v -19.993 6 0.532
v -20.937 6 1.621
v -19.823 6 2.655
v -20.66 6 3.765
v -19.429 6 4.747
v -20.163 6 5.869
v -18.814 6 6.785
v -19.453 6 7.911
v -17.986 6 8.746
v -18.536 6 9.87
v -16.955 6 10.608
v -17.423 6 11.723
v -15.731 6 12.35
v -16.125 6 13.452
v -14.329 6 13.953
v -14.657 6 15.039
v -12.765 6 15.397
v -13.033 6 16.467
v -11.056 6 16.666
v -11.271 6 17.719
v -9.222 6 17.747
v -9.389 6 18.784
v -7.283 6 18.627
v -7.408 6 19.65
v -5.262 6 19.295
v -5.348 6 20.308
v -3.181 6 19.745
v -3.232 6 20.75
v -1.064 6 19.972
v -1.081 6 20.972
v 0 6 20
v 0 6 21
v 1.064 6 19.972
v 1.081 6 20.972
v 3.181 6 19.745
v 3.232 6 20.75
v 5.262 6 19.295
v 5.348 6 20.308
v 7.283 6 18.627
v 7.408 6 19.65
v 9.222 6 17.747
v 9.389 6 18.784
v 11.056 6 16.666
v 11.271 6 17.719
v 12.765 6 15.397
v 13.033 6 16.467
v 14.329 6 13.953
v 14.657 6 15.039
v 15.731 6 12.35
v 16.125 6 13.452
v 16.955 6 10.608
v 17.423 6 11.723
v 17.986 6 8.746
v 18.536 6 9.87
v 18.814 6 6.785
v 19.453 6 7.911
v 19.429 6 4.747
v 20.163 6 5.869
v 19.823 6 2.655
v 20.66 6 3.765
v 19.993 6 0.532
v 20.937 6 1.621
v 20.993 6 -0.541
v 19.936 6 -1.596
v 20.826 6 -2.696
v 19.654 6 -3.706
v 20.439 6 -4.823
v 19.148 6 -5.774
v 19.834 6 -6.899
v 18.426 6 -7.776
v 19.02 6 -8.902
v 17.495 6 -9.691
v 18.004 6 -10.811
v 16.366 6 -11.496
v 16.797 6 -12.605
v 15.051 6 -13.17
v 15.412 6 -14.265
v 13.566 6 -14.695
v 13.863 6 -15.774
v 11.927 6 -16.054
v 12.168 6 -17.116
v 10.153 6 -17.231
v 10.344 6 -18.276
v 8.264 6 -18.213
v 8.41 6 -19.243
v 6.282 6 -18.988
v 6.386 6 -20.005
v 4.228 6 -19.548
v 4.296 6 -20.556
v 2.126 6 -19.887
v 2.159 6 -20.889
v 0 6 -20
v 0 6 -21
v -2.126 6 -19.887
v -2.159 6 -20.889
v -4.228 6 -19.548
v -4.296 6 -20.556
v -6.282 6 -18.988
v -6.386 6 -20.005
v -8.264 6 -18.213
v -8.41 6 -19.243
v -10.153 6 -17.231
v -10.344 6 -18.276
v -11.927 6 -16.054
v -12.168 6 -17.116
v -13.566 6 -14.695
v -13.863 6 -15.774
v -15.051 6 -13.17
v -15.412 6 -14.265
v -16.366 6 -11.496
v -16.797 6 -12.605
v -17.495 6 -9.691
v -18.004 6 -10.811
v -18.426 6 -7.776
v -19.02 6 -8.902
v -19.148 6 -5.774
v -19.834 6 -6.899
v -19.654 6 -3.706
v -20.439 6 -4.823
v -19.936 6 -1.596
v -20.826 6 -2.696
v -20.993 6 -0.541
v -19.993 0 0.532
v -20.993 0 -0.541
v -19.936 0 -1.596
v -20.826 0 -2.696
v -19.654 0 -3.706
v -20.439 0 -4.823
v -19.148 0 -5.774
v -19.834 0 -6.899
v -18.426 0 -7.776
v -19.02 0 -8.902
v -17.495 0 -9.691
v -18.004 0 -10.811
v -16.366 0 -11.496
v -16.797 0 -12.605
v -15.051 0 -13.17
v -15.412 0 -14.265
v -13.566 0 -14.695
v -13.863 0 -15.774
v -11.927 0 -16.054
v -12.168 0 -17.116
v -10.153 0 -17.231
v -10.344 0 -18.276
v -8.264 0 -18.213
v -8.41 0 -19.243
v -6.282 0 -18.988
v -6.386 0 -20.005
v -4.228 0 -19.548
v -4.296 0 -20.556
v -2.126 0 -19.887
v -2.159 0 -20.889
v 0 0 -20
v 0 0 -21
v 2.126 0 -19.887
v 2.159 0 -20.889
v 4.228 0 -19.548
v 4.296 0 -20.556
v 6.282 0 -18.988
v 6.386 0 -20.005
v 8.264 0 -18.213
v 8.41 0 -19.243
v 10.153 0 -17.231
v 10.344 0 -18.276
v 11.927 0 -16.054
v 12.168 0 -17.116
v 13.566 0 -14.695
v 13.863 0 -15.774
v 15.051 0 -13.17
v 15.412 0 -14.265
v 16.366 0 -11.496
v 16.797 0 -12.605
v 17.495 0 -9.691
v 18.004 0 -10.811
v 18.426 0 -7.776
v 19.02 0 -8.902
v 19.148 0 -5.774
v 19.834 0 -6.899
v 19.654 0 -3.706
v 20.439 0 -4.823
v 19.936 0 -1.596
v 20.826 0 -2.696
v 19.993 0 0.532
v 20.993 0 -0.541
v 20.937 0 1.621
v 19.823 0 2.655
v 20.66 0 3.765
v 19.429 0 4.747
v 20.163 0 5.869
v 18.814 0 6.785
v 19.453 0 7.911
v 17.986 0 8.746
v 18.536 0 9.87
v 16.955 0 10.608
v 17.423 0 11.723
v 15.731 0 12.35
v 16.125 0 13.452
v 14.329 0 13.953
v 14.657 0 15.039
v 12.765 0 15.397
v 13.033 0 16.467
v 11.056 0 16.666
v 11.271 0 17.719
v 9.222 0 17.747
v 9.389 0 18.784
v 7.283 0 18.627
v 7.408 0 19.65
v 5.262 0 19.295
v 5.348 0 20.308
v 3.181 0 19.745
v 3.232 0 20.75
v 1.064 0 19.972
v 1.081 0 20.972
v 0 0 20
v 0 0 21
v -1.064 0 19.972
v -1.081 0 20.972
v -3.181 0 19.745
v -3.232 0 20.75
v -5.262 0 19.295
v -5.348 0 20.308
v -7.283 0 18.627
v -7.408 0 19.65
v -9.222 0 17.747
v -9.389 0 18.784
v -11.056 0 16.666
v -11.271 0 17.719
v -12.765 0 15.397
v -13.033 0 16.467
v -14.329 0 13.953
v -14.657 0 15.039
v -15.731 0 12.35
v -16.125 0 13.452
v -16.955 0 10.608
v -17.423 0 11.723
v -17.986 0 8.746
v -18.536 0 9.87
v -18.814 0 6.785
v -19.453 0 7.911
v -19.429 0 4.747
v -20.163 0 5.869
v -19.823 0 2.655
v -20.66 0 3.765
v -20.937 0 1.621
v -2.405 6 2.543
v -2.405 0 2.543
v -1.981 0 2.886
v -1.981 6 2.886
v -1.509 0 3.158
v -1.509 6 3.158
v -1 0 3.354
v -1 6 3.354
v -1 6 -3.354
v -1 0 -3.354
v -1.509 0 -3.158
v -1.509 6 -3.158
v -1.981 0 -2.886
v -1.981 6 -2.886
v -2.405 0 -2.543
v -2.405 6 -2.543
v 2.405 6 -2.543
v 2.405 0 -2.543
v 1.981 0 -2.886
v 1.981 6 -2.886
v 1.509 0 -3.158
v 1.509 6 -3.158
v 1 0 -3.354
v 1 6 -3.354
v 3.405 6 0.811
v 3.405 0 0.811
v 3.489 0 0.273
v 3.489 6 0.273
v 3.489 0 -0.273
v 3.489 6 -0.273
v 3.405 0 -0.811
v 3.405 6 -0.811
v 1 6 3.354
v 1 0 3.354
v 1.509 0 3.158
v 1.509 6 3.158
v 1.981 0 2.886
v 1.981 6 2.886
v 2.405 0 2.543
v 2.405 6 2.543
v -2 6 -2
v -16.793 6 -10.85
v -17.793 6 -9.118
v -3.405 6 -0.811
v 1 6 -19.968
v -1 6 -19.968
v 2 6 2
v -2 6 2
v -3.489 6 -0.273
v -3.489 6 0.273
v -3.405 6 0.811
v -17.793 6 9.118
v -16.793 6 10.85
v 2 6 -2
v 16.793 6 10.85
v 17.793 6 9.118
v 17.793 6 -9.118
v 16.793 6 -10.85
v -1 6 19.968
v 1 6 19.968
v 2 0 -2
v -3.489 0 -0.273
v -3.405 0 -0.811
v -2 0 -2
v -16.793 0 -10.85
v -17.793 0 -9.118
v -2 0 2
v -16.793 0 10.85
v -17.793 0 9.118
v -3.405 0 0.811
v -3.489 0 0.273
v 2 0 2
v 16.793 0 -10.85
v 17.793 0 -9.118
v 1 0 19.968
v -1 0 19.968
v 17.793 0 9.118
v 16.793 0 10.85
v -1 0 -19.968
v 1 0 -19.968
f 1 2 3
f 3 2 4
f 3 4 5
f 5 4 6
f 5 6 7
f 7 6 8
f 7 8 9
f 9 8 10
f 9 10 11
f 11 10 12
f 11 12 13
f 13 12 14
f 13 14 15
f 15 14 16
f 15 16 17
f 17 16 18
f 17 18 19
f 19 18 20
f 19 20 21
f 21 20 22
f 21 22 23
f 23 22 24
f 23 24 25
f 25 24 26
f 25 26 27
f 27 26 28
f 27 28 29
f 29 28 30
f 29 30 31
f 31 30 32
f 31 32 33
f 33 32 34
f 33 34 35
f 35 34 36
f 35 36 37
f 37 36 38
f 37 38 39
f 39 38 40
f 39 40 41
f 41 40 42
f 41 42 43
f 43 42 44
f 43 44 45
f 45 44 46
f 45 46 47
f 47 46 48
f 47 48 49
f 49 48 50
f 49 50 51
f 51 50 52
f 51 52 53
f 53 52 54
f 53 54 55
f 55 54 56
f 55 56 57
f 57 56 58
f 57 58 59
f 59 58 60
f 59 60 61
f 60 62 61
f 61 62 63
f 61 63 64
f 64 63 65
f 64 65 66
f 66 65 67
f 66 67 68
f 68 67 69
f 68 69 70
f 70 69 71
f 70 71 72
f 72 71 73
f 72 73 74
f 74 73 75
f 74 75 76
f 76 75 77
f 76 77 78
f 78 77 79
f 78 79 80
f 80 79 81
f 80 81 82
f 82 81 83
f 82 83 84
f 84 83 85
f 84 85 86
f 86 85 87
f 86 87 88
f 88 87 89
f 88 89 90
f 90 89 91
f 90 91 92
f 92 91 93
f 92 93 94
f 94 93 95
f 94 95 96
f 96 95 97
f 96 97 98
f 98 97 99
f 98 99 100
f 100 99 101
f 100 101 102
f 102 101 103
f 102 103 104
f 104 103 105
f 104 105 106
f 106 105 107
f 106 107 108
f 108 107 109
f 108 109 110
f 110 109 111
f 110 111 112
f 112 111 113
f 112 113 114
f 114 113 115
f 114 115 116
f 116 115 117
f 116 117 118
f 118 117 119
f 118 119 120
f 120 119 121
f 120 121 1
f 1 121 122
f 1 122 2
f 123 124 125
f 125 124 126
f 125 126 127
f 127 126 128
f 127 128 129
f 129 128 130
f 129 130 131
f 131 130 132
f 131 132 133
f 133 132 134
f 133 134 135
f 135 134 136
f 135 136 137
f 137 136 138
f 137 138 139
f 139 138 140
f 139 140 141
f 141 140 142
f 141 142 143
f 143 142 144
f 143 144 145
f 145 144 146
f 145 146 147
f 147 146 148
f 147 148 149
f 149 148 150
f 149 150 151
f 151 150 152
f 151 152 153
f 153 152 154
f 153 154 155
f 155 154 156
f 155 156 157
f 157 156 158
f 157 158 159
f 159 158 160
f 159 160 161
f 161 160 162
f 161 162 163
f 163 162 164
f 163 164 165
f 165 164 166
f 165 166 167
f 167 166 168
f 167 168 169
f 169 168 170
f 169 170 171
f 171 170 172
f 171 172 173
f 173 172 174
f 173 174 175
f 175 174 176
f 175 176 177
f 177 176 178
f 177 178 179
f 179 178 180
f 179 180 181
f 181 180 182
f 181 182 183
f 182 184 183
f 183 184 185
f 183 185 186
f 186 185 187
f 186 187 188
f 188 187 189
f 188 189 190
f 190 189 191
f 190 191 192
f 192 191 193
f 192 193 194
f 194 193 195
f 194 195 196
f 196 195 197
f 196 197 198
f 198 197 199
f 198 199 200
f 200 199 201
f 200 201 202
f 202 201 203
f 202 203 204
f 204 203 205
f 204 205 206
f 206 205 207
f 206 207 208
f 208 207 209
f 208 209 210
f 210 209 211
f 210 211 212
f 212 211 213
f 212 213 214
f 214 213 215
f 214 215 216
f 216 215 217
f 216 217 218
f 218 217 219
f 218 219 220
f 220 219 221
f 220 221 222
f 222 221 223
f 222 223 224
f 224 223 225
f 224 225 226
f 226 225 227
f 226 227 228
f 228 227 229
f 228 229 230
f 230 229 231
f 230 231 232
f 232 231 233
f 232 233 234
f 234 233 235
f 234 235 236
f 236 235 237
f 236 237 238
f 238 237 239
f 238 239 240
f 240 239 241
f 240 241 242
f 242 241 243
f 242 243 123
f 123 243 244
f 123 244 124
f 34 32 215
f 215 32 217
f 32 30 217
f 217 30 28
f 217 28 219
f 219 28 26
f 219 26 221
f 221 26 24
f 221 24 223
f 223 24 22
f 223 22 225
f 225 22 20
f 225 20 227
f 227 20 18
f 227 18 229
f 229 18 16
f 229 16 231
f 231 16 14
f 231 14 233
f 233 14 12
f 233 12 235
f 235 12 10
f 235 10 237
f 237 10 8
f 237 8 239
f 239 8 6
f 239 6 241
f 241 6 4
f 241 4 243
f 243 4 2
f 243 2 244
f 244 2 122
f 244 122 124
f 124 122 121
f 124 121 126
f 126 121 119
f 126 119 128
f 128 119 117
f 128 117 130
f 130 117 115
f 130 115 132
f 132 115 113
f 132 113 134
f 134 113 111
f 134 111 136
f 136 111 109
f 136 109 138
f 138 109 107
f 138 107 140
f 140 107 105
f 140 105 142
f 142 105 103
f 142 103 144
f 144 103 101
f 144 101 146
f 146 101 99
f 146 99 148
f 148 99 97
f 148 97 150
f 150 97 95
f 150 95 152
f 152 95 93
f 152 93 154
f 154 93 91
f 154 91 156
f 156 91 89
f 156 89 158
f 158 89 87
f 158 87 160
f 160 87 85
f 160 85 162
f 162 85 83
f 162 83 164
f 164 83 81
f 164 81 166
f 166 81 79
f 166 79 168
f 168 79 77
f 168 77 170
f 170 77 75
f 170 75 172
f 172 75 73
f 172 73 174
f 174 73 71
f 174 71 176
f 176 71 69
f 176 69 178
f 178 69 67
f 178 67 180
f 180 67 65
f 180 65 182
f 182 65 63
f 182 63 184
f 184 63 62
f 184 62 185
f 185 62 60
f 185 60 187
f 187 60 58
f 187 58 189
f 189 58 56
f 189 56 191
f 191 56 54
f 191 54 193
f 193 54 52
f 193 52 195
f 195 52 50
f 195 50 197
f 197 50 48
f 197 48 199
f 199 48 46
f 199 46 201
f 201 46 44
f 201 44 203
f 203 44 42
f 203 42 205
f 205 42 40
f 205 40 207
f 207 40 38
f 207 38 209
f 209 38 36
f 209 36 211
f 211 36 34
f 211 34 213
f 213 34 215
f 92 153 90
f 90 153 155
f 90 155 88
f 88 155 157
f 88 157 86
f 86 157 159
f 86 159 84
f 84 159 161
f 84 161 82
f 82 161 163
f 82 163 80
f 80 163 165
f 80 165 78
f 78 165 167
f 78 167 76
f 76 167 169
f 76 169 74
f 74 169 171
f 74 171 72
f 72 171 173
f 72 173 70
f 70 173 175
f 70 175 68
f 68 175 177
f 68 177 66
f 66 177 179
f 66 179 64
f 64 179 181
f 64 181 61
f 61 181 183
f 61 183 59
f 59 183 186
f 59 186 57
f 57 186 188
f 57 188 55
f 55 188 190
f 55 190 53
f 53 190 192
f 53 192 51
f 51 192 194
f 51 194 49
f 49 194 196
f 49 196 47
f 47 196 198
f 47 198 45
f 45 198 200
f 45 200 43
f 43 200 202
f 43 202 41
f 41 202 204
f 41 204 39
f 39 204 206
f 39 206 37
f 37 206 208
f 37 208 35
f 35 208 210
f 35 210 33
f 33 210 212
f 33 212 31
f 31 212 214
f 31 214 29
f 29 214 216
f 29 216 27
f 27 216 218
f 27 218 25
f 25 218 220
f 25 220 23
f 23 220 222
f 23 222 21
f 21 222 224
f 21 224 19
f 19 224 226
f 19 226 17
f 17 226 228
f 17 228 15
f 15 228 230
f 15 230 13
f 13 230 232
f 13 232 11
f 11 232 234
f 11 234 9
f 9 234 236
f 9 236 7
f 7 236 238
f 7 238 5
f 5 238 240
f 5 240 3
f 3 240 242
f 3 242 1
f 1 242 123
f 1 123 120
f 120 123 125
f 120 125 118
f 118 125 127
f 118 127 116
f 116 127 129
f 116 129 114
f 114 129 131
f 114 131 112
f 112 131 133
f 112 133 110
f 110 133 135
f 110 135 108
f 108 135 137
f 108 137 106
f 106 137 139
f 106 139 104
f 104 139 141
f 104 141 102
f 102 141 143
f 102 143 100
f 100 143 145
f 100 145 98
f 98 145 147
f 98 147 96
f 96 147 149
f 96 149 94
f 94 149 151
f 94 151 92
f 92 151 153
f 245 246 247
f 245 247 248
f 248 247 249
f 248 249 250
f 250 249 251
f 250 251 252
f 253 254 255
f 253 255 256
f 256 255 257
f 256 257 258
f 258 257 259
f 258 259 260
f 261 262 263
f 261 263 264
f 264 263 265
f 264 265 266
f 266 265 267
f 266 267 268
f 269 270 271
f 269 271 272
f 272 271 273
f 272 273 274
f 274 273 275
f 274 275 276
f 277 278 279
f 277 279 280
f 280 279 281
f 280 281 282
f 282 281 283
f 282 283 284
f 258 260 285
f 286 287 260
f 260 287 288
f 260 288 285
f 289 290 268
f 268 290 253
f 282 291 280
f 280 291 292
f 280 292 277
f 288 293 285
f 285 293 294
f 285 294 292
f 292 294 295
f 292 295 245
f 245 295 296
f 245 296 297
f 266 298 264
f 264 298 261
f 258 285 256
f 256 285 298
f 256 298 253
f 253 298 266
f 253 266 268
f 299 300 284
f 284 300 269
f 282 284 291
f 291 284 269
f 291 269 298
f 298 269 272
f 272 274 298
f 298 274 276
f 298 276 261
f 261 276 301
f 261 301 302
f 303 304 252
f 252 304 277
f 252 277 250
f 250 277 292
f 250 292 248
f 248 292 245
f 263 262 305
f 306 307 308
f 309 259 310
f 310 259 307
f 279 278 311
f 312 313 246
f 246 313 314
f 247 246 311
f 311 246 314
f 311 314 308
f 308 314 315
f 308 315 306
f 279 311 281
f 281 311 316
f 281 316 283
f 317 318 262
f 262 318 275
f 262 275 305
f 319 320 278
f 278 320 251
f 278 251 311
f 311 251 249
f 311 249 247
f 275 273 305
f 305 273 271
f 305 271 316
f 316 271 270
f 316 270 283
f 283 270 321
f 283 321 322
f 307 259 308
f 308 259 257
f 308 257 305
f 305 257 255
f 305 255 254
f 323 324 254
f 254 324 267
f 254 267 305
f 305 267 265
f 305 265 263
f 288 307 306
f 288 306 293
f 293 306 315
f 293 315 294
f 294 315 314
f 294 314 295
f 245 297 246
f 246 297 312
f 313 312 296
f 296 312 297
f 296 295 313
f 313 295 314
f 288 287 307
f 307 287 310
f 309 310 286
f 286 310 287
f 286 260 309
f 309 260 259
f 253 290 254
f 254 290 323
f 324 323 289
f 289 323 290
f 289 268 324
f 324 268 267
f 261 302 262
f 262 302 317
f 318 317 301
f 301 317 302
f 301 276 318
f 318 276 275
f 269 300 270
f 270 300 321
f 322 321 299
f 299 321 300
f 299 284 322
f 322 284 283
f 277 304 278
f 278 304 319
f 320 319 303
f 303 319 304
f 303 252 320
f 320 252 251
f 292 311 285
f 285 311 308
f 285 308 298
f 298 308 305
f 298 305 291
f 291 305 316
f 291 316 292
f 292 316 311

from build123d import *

# Parameters (mm, degrees)
SKETCH1_R           = 21
SKETCH1_R_2         = 20
BOSS_EXTRUDE4_DEPTH = 6
BOSS_EXTRUDE5_DEPTH = 6
SKETCH5_W           = 4
SKETCH5_H           = 4
CUT_EXTRUDE1_DEPTH  = 15


with BuildPart() as part:
    # Sketch1 → Boss-Extrude4 (new body)
    with BuildSketch(Plane(origin=(0, 0, 0), x_dir=(1, 0, 0), z_dir=(0, 1, 0))):
        Circle(SKETCH1_R)
        Circle(SKETCH1_R_2, mode=Mode.SUBTRACT)
    extrude(amount=BOSS_EXTRUDE4_DEPTH)


with BuildPart() as body_2:
    # Sketch4 → Boss-Extrude5 (new body)
    with BuildSketch(Plane(origin=(0, 0, 0), x_dir=(1, 0, 0), z_dir=(0, 1, 0))):
        with BuildLine():
            ThreePointArc((1, -3.354101966), (1.75, -3.031088913), (2.40473751, -2.543076387))
            Line((2.40473751, -2.543076387), (16.793084245, -10.850192248))
            ThreePointArc((16.793084245, -10.850192248), (17.314755635, -9.996678827), (17.793084245, -9.11814144))
            Line((17.793084245, -9.11814144), (3.40473751, -0.811025579))
            ThreePointArc((3.40473751, -0.811025579), (3.5, 0), (3.40473751, 0.811025579))
            Line((3.40473751, 0.811025579), (17.793084245, 9.11814144))
            ThreePointArc((17.793084245, 9.11814144), (17.314755635, 9.996678827), (16.793084245, 10.850192248))
            Line((16.793084245, 10.850192248), (2.40473751, 2.543076387))
            ThreePointArc((2.40473751, 2.543076387), (1.75, 3.031088913), (1, 3.354101966))
            Line((1, 3.354101966), (1, 19.968333688))
            ThreePointArc((1, 19.968333688), (0, 19.993357654), (-1, 19.968333688))
            Line((-1, 19.968333688), (-1, 3.354101966))
            ThreePointArc((-1, 3.354101966), (-1.75, 3.031088913), (-2.40473751, 2.543076387))
            Line((-2.40473751, 2.543076387), (-16.793084245, 10.850192248))
            ThreePointArc((-16.793084245, 10.850192248), (-17.314755635, 9.996678827), (-17.793084245, 9.11814144))
            Line((-17.793084245, 9.11814144), (-3.40473751, 0.811025579))
            ThreePointArc((-3.40473751, 0.811025579), (-3.5, 0), (-3.40473751, -0.811025579))
            Line((-3.40473751, -0.811025579), (-17.793084245, -9.11814144))
            ThreePointArc((-17.793084245, -9.11814144), (-17.314755635, -9.996678827), (-16.793084245, -10.850192248))
            Line((-16.793084245, -10.850192248), (-2.40473751, -2.543076387))
            ThreePointArc((-2.40473751, -2.543076387), (-1.75, -3.031088913), (-1, -3.354101966))
            Line((-1, -3.354101966), (-1, -19.968333688))
            ThreePointArc((-1, -19.968333688), (0, -19.993357654), (1, -19.968333688))
            Line((1, -19.968333688), (1, -3.354101966))
        make_face()
    extrude(amount=BOSS_EXTRUDE5_DEPTH)

    # Sketch5 → Cut-Extrude1 (cut)
    with BuildSketch(Plane(origin=(0, 6, 0), x_dir=(1, 0, 0), z_dir=(0, 1, 0))):
        Rectangle(SKETCH5_W, SKETCH5_H)
    extrude(amount=-CUT_EXTRUDE1_DEPTH, mode=Mode.SUBTRACT)


solid = Compound([part.part, body_2.part])
